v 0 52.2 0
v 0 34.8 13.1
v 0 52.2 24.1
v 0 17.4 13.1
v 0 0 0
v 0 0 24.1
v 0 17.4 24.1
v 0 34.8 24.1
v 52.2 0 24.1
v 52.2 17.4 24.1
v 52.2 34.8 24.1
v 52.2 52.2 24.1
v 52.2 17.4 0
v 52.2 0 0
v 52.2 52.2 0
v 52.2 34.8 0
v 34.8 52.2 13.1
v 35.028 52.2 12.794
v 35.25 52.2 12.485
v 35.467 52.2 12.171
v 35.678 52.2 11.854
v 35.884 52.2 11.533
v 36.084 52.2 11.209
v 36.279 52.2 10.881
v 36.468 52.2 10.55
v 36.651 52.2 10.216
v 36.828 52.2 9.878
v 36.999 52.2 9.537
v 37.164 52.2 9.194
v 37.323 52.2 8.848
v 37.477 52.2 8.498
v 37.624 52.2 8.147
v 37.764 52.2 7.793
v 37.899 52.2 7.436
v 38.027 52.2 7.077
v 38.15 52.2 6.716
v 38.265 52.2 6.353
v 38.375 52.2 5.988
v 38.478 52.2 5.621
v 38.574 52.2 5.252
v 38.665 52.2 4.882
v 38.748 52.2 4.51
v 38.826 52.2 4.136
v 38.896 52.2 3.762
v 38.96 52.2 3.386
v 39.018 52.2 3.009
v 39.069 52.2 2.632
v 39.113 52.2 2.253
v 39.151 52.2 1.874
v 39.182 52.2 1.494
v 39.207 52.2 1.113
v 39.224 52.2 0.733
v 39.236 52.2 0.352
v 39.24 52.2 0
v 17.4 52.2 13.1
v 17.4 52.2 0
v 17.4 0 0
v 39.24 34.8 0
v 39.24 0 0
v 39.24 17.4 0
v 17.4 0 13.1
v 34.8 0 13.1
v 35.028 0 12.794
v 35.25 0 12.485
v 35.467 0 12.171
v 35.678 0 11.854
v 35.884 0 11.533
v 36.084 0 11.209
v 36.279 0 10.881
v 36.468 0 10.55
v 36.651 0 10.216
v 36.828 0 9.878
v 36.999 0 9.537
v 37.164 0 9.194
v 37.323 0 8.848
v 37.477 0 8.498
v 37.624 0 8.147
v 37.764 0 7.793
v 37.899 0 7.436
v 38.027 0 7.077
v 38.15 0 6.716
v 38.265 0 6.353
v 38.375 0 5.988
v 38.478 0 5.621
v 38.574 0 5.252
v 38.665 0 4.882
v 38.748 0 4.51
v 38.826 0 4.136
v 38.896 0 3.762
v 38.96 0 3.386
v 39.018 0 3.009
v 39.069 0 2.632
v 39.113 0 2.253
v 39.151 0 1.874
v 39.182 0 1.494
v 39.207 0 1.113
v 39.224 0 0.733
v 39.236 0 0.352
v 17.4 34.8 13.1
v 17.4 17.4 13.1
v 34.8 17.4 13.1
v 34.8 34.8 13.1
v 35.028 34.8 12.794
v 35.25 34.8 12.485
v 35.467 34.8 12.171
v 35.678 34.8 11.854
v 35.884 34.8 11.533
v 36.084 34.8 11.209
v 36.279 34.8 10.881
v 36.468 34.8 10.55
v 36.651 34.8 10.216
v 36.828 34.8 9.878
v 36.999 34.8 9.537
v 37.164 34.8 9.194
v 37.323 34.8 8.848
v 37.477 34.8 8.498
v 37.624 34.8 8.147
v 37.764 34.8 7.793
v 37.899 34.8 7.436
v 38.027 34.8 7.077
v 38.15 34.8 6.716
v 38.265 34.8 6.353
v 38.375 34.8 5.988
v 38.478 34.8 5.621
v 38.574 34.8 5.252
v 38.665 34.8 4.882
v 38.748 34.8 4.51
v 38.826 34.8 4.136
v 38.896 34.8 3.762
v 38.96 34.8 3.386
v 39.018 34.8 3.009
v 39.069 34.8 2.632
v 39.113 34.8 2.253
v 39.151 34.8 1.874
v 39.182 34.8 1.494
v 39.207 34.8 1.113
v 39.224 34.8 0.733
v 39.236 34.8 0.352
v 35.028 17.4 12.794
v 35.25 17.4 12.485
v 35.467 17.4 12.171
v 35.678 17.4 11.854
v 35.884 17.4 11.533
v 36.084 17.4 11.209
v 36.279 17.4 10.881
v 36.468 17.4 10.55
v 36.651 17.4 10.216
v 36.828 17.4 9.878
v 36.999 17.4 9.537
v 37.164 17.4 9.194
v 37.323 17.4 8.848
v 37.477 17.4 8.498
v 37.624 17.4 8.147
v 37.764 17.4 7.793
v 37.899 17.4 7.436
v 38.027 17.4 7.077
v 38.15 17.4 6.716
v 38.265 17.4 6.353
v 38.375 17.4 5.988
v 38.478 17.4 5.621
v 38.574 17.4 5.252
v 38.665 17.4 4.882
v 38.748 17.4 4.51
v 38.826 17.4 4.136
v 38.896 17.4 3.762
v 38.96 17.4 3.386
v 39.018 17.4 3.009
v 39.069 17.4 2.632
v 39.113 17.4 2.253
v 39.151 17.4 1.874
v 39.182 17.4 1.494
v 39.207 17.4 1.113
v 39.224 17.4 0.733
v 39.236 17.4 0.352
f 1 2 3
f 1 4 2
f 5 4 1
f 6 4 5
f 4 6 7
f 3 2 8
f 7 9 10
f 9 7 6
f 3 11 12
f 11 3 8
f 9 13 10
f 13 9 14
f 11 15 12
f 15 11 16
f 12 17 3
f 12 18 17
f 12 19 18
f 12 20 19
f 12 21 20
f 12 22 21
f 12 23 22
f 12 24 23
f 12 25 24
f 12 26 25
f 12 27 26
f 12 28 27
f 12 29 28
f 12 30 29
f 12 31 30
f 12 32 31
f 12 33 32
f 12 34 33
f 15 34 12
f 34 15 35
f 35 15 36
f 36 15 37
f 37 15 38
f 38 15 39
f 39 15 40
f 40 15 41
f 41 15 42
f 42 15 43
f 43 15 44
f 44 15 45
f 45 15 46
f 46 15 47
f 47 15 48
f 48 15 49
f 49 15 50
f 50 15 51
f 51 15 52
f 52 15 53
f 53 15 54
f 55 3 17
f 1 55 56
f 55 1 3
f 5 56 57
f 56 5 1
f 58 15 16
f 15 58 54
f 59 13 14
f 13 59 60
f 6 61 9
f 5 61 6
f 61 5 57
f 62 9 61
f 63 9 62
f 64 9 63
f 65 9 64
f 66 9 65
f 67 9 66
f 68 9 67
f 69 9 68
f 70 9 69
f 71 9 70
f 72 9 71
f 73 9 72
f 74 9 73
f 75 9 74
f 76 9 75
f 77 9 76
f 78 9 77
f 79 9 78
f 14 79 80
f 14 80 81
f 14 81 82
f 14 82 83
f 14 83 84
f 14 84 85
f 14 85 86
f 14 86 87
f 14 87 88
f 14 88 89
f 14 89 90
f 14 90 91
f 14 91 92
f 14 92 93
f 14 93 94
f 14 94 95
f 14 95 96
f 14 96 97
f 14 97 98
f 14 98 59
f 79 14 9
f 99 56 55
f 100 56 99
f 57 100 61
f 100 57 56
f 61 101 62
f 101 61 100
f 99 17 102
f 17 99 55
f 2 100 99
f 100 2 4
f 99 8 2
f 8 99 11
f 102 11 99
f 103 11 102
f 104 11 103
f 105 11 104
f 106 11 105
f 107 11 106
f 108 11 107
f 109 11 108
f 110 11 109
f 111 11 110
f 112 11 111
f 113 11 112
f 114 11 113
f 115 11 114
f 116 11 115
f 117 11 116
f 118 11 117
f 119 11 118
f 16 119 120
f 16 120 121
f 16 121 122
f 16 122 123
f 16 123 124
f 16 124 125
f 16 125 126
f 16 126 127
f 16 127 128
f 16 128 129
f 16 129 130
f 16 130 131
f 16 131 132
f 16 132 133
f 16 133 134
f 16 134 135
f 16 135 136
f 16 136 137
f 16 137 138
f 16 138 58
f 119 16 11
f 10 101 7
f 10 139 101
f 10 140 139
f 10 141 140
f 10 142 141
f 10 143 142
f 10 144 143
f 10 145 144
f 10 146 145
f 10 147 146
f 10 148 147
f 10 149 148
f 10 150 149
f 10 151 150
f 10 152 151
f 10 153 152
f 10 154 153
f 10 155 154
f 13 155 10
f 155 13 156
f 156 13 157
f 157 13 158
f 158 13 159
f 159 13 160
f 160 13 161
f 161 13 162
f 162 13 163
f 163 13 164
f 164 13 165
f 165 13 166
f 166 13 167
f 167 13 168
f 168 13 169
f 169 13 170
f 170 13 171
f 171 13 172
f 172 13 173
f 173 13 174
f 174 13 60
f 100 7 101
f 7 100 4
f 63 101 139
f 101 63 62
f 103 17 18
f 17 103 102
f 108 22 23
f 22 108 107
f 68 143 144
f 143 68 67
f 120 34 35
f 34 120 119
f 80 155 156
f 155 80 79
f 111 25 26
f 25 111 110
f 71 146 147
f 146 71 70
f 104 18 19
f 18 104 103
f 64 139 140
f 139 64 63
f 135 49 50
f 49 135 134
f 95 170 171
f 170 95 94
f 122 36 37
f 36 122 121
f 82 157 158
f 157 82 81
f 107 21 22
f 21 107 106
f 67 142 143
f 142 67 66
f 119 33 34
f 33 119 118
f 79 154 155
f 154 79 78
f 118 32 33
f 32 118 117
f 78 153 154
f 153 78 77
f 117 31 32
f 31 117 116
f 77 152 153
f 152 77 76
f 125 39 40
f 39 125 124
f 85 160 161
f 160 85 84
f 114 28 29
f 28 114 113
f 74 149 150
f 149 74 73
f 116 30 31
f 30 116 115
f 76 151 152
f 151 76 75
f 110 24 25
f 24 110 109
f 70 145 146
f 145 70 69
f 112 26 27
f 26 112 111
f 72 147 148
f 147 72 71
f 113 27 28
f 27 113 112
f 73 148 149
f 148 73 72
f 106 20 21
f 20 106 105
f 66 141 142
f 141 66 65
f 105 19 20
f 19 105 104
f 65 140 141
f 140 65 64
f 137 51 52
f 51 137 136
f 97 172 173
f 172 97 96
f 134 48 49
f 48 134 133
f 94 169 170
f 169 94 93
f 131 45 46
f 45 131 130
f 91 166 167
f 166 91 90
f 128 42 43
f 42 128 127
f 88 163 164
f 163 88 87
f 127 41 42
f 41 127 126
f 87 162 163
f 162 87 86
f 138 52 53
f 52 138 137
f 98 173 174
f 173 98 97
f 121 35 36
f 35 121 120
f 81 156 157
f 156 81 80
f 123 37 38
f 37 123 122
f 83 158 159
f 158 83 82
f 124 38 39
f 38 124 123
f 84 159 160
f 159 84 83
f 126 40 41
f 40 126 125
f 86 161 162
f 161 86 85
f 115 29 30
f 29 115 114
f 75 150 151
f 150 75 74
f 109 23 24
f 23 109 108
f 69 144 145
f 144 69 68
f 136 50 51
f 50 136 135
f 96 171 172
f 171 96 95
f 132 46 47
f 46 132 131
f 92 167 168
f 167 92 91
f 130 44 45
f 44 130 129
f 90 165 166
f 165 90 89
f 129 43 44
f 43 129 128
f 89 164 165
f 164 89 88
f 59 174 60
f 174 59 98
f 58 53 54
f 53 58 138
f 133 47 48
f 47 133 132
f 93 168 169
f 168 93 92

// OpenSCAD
slop=.1;

thickness = 17.3+slop;
h1 = 13+slop;
h2 = 24+slop;
difference(){
  cube([3*thickness, 3*thickness, h2]);
  translate([thickness,-.1,-.1]) cube([thickness, 3*thickness+.2, h1+.1]);
  translate([-.1,thickness,h1]) cube([3*thickness+.2, thickness, h2-h1+.1]);
  translate([thickness,thickness,-.1]) cube([2*thickness+.1, thickness, h2+.2]);

  hull() translate([thickness,-.1,-.1]) for(i=[0:45])rotate([0,i,0]) cube([thickness, 3*thickness+.2, h1+.1]);
}
